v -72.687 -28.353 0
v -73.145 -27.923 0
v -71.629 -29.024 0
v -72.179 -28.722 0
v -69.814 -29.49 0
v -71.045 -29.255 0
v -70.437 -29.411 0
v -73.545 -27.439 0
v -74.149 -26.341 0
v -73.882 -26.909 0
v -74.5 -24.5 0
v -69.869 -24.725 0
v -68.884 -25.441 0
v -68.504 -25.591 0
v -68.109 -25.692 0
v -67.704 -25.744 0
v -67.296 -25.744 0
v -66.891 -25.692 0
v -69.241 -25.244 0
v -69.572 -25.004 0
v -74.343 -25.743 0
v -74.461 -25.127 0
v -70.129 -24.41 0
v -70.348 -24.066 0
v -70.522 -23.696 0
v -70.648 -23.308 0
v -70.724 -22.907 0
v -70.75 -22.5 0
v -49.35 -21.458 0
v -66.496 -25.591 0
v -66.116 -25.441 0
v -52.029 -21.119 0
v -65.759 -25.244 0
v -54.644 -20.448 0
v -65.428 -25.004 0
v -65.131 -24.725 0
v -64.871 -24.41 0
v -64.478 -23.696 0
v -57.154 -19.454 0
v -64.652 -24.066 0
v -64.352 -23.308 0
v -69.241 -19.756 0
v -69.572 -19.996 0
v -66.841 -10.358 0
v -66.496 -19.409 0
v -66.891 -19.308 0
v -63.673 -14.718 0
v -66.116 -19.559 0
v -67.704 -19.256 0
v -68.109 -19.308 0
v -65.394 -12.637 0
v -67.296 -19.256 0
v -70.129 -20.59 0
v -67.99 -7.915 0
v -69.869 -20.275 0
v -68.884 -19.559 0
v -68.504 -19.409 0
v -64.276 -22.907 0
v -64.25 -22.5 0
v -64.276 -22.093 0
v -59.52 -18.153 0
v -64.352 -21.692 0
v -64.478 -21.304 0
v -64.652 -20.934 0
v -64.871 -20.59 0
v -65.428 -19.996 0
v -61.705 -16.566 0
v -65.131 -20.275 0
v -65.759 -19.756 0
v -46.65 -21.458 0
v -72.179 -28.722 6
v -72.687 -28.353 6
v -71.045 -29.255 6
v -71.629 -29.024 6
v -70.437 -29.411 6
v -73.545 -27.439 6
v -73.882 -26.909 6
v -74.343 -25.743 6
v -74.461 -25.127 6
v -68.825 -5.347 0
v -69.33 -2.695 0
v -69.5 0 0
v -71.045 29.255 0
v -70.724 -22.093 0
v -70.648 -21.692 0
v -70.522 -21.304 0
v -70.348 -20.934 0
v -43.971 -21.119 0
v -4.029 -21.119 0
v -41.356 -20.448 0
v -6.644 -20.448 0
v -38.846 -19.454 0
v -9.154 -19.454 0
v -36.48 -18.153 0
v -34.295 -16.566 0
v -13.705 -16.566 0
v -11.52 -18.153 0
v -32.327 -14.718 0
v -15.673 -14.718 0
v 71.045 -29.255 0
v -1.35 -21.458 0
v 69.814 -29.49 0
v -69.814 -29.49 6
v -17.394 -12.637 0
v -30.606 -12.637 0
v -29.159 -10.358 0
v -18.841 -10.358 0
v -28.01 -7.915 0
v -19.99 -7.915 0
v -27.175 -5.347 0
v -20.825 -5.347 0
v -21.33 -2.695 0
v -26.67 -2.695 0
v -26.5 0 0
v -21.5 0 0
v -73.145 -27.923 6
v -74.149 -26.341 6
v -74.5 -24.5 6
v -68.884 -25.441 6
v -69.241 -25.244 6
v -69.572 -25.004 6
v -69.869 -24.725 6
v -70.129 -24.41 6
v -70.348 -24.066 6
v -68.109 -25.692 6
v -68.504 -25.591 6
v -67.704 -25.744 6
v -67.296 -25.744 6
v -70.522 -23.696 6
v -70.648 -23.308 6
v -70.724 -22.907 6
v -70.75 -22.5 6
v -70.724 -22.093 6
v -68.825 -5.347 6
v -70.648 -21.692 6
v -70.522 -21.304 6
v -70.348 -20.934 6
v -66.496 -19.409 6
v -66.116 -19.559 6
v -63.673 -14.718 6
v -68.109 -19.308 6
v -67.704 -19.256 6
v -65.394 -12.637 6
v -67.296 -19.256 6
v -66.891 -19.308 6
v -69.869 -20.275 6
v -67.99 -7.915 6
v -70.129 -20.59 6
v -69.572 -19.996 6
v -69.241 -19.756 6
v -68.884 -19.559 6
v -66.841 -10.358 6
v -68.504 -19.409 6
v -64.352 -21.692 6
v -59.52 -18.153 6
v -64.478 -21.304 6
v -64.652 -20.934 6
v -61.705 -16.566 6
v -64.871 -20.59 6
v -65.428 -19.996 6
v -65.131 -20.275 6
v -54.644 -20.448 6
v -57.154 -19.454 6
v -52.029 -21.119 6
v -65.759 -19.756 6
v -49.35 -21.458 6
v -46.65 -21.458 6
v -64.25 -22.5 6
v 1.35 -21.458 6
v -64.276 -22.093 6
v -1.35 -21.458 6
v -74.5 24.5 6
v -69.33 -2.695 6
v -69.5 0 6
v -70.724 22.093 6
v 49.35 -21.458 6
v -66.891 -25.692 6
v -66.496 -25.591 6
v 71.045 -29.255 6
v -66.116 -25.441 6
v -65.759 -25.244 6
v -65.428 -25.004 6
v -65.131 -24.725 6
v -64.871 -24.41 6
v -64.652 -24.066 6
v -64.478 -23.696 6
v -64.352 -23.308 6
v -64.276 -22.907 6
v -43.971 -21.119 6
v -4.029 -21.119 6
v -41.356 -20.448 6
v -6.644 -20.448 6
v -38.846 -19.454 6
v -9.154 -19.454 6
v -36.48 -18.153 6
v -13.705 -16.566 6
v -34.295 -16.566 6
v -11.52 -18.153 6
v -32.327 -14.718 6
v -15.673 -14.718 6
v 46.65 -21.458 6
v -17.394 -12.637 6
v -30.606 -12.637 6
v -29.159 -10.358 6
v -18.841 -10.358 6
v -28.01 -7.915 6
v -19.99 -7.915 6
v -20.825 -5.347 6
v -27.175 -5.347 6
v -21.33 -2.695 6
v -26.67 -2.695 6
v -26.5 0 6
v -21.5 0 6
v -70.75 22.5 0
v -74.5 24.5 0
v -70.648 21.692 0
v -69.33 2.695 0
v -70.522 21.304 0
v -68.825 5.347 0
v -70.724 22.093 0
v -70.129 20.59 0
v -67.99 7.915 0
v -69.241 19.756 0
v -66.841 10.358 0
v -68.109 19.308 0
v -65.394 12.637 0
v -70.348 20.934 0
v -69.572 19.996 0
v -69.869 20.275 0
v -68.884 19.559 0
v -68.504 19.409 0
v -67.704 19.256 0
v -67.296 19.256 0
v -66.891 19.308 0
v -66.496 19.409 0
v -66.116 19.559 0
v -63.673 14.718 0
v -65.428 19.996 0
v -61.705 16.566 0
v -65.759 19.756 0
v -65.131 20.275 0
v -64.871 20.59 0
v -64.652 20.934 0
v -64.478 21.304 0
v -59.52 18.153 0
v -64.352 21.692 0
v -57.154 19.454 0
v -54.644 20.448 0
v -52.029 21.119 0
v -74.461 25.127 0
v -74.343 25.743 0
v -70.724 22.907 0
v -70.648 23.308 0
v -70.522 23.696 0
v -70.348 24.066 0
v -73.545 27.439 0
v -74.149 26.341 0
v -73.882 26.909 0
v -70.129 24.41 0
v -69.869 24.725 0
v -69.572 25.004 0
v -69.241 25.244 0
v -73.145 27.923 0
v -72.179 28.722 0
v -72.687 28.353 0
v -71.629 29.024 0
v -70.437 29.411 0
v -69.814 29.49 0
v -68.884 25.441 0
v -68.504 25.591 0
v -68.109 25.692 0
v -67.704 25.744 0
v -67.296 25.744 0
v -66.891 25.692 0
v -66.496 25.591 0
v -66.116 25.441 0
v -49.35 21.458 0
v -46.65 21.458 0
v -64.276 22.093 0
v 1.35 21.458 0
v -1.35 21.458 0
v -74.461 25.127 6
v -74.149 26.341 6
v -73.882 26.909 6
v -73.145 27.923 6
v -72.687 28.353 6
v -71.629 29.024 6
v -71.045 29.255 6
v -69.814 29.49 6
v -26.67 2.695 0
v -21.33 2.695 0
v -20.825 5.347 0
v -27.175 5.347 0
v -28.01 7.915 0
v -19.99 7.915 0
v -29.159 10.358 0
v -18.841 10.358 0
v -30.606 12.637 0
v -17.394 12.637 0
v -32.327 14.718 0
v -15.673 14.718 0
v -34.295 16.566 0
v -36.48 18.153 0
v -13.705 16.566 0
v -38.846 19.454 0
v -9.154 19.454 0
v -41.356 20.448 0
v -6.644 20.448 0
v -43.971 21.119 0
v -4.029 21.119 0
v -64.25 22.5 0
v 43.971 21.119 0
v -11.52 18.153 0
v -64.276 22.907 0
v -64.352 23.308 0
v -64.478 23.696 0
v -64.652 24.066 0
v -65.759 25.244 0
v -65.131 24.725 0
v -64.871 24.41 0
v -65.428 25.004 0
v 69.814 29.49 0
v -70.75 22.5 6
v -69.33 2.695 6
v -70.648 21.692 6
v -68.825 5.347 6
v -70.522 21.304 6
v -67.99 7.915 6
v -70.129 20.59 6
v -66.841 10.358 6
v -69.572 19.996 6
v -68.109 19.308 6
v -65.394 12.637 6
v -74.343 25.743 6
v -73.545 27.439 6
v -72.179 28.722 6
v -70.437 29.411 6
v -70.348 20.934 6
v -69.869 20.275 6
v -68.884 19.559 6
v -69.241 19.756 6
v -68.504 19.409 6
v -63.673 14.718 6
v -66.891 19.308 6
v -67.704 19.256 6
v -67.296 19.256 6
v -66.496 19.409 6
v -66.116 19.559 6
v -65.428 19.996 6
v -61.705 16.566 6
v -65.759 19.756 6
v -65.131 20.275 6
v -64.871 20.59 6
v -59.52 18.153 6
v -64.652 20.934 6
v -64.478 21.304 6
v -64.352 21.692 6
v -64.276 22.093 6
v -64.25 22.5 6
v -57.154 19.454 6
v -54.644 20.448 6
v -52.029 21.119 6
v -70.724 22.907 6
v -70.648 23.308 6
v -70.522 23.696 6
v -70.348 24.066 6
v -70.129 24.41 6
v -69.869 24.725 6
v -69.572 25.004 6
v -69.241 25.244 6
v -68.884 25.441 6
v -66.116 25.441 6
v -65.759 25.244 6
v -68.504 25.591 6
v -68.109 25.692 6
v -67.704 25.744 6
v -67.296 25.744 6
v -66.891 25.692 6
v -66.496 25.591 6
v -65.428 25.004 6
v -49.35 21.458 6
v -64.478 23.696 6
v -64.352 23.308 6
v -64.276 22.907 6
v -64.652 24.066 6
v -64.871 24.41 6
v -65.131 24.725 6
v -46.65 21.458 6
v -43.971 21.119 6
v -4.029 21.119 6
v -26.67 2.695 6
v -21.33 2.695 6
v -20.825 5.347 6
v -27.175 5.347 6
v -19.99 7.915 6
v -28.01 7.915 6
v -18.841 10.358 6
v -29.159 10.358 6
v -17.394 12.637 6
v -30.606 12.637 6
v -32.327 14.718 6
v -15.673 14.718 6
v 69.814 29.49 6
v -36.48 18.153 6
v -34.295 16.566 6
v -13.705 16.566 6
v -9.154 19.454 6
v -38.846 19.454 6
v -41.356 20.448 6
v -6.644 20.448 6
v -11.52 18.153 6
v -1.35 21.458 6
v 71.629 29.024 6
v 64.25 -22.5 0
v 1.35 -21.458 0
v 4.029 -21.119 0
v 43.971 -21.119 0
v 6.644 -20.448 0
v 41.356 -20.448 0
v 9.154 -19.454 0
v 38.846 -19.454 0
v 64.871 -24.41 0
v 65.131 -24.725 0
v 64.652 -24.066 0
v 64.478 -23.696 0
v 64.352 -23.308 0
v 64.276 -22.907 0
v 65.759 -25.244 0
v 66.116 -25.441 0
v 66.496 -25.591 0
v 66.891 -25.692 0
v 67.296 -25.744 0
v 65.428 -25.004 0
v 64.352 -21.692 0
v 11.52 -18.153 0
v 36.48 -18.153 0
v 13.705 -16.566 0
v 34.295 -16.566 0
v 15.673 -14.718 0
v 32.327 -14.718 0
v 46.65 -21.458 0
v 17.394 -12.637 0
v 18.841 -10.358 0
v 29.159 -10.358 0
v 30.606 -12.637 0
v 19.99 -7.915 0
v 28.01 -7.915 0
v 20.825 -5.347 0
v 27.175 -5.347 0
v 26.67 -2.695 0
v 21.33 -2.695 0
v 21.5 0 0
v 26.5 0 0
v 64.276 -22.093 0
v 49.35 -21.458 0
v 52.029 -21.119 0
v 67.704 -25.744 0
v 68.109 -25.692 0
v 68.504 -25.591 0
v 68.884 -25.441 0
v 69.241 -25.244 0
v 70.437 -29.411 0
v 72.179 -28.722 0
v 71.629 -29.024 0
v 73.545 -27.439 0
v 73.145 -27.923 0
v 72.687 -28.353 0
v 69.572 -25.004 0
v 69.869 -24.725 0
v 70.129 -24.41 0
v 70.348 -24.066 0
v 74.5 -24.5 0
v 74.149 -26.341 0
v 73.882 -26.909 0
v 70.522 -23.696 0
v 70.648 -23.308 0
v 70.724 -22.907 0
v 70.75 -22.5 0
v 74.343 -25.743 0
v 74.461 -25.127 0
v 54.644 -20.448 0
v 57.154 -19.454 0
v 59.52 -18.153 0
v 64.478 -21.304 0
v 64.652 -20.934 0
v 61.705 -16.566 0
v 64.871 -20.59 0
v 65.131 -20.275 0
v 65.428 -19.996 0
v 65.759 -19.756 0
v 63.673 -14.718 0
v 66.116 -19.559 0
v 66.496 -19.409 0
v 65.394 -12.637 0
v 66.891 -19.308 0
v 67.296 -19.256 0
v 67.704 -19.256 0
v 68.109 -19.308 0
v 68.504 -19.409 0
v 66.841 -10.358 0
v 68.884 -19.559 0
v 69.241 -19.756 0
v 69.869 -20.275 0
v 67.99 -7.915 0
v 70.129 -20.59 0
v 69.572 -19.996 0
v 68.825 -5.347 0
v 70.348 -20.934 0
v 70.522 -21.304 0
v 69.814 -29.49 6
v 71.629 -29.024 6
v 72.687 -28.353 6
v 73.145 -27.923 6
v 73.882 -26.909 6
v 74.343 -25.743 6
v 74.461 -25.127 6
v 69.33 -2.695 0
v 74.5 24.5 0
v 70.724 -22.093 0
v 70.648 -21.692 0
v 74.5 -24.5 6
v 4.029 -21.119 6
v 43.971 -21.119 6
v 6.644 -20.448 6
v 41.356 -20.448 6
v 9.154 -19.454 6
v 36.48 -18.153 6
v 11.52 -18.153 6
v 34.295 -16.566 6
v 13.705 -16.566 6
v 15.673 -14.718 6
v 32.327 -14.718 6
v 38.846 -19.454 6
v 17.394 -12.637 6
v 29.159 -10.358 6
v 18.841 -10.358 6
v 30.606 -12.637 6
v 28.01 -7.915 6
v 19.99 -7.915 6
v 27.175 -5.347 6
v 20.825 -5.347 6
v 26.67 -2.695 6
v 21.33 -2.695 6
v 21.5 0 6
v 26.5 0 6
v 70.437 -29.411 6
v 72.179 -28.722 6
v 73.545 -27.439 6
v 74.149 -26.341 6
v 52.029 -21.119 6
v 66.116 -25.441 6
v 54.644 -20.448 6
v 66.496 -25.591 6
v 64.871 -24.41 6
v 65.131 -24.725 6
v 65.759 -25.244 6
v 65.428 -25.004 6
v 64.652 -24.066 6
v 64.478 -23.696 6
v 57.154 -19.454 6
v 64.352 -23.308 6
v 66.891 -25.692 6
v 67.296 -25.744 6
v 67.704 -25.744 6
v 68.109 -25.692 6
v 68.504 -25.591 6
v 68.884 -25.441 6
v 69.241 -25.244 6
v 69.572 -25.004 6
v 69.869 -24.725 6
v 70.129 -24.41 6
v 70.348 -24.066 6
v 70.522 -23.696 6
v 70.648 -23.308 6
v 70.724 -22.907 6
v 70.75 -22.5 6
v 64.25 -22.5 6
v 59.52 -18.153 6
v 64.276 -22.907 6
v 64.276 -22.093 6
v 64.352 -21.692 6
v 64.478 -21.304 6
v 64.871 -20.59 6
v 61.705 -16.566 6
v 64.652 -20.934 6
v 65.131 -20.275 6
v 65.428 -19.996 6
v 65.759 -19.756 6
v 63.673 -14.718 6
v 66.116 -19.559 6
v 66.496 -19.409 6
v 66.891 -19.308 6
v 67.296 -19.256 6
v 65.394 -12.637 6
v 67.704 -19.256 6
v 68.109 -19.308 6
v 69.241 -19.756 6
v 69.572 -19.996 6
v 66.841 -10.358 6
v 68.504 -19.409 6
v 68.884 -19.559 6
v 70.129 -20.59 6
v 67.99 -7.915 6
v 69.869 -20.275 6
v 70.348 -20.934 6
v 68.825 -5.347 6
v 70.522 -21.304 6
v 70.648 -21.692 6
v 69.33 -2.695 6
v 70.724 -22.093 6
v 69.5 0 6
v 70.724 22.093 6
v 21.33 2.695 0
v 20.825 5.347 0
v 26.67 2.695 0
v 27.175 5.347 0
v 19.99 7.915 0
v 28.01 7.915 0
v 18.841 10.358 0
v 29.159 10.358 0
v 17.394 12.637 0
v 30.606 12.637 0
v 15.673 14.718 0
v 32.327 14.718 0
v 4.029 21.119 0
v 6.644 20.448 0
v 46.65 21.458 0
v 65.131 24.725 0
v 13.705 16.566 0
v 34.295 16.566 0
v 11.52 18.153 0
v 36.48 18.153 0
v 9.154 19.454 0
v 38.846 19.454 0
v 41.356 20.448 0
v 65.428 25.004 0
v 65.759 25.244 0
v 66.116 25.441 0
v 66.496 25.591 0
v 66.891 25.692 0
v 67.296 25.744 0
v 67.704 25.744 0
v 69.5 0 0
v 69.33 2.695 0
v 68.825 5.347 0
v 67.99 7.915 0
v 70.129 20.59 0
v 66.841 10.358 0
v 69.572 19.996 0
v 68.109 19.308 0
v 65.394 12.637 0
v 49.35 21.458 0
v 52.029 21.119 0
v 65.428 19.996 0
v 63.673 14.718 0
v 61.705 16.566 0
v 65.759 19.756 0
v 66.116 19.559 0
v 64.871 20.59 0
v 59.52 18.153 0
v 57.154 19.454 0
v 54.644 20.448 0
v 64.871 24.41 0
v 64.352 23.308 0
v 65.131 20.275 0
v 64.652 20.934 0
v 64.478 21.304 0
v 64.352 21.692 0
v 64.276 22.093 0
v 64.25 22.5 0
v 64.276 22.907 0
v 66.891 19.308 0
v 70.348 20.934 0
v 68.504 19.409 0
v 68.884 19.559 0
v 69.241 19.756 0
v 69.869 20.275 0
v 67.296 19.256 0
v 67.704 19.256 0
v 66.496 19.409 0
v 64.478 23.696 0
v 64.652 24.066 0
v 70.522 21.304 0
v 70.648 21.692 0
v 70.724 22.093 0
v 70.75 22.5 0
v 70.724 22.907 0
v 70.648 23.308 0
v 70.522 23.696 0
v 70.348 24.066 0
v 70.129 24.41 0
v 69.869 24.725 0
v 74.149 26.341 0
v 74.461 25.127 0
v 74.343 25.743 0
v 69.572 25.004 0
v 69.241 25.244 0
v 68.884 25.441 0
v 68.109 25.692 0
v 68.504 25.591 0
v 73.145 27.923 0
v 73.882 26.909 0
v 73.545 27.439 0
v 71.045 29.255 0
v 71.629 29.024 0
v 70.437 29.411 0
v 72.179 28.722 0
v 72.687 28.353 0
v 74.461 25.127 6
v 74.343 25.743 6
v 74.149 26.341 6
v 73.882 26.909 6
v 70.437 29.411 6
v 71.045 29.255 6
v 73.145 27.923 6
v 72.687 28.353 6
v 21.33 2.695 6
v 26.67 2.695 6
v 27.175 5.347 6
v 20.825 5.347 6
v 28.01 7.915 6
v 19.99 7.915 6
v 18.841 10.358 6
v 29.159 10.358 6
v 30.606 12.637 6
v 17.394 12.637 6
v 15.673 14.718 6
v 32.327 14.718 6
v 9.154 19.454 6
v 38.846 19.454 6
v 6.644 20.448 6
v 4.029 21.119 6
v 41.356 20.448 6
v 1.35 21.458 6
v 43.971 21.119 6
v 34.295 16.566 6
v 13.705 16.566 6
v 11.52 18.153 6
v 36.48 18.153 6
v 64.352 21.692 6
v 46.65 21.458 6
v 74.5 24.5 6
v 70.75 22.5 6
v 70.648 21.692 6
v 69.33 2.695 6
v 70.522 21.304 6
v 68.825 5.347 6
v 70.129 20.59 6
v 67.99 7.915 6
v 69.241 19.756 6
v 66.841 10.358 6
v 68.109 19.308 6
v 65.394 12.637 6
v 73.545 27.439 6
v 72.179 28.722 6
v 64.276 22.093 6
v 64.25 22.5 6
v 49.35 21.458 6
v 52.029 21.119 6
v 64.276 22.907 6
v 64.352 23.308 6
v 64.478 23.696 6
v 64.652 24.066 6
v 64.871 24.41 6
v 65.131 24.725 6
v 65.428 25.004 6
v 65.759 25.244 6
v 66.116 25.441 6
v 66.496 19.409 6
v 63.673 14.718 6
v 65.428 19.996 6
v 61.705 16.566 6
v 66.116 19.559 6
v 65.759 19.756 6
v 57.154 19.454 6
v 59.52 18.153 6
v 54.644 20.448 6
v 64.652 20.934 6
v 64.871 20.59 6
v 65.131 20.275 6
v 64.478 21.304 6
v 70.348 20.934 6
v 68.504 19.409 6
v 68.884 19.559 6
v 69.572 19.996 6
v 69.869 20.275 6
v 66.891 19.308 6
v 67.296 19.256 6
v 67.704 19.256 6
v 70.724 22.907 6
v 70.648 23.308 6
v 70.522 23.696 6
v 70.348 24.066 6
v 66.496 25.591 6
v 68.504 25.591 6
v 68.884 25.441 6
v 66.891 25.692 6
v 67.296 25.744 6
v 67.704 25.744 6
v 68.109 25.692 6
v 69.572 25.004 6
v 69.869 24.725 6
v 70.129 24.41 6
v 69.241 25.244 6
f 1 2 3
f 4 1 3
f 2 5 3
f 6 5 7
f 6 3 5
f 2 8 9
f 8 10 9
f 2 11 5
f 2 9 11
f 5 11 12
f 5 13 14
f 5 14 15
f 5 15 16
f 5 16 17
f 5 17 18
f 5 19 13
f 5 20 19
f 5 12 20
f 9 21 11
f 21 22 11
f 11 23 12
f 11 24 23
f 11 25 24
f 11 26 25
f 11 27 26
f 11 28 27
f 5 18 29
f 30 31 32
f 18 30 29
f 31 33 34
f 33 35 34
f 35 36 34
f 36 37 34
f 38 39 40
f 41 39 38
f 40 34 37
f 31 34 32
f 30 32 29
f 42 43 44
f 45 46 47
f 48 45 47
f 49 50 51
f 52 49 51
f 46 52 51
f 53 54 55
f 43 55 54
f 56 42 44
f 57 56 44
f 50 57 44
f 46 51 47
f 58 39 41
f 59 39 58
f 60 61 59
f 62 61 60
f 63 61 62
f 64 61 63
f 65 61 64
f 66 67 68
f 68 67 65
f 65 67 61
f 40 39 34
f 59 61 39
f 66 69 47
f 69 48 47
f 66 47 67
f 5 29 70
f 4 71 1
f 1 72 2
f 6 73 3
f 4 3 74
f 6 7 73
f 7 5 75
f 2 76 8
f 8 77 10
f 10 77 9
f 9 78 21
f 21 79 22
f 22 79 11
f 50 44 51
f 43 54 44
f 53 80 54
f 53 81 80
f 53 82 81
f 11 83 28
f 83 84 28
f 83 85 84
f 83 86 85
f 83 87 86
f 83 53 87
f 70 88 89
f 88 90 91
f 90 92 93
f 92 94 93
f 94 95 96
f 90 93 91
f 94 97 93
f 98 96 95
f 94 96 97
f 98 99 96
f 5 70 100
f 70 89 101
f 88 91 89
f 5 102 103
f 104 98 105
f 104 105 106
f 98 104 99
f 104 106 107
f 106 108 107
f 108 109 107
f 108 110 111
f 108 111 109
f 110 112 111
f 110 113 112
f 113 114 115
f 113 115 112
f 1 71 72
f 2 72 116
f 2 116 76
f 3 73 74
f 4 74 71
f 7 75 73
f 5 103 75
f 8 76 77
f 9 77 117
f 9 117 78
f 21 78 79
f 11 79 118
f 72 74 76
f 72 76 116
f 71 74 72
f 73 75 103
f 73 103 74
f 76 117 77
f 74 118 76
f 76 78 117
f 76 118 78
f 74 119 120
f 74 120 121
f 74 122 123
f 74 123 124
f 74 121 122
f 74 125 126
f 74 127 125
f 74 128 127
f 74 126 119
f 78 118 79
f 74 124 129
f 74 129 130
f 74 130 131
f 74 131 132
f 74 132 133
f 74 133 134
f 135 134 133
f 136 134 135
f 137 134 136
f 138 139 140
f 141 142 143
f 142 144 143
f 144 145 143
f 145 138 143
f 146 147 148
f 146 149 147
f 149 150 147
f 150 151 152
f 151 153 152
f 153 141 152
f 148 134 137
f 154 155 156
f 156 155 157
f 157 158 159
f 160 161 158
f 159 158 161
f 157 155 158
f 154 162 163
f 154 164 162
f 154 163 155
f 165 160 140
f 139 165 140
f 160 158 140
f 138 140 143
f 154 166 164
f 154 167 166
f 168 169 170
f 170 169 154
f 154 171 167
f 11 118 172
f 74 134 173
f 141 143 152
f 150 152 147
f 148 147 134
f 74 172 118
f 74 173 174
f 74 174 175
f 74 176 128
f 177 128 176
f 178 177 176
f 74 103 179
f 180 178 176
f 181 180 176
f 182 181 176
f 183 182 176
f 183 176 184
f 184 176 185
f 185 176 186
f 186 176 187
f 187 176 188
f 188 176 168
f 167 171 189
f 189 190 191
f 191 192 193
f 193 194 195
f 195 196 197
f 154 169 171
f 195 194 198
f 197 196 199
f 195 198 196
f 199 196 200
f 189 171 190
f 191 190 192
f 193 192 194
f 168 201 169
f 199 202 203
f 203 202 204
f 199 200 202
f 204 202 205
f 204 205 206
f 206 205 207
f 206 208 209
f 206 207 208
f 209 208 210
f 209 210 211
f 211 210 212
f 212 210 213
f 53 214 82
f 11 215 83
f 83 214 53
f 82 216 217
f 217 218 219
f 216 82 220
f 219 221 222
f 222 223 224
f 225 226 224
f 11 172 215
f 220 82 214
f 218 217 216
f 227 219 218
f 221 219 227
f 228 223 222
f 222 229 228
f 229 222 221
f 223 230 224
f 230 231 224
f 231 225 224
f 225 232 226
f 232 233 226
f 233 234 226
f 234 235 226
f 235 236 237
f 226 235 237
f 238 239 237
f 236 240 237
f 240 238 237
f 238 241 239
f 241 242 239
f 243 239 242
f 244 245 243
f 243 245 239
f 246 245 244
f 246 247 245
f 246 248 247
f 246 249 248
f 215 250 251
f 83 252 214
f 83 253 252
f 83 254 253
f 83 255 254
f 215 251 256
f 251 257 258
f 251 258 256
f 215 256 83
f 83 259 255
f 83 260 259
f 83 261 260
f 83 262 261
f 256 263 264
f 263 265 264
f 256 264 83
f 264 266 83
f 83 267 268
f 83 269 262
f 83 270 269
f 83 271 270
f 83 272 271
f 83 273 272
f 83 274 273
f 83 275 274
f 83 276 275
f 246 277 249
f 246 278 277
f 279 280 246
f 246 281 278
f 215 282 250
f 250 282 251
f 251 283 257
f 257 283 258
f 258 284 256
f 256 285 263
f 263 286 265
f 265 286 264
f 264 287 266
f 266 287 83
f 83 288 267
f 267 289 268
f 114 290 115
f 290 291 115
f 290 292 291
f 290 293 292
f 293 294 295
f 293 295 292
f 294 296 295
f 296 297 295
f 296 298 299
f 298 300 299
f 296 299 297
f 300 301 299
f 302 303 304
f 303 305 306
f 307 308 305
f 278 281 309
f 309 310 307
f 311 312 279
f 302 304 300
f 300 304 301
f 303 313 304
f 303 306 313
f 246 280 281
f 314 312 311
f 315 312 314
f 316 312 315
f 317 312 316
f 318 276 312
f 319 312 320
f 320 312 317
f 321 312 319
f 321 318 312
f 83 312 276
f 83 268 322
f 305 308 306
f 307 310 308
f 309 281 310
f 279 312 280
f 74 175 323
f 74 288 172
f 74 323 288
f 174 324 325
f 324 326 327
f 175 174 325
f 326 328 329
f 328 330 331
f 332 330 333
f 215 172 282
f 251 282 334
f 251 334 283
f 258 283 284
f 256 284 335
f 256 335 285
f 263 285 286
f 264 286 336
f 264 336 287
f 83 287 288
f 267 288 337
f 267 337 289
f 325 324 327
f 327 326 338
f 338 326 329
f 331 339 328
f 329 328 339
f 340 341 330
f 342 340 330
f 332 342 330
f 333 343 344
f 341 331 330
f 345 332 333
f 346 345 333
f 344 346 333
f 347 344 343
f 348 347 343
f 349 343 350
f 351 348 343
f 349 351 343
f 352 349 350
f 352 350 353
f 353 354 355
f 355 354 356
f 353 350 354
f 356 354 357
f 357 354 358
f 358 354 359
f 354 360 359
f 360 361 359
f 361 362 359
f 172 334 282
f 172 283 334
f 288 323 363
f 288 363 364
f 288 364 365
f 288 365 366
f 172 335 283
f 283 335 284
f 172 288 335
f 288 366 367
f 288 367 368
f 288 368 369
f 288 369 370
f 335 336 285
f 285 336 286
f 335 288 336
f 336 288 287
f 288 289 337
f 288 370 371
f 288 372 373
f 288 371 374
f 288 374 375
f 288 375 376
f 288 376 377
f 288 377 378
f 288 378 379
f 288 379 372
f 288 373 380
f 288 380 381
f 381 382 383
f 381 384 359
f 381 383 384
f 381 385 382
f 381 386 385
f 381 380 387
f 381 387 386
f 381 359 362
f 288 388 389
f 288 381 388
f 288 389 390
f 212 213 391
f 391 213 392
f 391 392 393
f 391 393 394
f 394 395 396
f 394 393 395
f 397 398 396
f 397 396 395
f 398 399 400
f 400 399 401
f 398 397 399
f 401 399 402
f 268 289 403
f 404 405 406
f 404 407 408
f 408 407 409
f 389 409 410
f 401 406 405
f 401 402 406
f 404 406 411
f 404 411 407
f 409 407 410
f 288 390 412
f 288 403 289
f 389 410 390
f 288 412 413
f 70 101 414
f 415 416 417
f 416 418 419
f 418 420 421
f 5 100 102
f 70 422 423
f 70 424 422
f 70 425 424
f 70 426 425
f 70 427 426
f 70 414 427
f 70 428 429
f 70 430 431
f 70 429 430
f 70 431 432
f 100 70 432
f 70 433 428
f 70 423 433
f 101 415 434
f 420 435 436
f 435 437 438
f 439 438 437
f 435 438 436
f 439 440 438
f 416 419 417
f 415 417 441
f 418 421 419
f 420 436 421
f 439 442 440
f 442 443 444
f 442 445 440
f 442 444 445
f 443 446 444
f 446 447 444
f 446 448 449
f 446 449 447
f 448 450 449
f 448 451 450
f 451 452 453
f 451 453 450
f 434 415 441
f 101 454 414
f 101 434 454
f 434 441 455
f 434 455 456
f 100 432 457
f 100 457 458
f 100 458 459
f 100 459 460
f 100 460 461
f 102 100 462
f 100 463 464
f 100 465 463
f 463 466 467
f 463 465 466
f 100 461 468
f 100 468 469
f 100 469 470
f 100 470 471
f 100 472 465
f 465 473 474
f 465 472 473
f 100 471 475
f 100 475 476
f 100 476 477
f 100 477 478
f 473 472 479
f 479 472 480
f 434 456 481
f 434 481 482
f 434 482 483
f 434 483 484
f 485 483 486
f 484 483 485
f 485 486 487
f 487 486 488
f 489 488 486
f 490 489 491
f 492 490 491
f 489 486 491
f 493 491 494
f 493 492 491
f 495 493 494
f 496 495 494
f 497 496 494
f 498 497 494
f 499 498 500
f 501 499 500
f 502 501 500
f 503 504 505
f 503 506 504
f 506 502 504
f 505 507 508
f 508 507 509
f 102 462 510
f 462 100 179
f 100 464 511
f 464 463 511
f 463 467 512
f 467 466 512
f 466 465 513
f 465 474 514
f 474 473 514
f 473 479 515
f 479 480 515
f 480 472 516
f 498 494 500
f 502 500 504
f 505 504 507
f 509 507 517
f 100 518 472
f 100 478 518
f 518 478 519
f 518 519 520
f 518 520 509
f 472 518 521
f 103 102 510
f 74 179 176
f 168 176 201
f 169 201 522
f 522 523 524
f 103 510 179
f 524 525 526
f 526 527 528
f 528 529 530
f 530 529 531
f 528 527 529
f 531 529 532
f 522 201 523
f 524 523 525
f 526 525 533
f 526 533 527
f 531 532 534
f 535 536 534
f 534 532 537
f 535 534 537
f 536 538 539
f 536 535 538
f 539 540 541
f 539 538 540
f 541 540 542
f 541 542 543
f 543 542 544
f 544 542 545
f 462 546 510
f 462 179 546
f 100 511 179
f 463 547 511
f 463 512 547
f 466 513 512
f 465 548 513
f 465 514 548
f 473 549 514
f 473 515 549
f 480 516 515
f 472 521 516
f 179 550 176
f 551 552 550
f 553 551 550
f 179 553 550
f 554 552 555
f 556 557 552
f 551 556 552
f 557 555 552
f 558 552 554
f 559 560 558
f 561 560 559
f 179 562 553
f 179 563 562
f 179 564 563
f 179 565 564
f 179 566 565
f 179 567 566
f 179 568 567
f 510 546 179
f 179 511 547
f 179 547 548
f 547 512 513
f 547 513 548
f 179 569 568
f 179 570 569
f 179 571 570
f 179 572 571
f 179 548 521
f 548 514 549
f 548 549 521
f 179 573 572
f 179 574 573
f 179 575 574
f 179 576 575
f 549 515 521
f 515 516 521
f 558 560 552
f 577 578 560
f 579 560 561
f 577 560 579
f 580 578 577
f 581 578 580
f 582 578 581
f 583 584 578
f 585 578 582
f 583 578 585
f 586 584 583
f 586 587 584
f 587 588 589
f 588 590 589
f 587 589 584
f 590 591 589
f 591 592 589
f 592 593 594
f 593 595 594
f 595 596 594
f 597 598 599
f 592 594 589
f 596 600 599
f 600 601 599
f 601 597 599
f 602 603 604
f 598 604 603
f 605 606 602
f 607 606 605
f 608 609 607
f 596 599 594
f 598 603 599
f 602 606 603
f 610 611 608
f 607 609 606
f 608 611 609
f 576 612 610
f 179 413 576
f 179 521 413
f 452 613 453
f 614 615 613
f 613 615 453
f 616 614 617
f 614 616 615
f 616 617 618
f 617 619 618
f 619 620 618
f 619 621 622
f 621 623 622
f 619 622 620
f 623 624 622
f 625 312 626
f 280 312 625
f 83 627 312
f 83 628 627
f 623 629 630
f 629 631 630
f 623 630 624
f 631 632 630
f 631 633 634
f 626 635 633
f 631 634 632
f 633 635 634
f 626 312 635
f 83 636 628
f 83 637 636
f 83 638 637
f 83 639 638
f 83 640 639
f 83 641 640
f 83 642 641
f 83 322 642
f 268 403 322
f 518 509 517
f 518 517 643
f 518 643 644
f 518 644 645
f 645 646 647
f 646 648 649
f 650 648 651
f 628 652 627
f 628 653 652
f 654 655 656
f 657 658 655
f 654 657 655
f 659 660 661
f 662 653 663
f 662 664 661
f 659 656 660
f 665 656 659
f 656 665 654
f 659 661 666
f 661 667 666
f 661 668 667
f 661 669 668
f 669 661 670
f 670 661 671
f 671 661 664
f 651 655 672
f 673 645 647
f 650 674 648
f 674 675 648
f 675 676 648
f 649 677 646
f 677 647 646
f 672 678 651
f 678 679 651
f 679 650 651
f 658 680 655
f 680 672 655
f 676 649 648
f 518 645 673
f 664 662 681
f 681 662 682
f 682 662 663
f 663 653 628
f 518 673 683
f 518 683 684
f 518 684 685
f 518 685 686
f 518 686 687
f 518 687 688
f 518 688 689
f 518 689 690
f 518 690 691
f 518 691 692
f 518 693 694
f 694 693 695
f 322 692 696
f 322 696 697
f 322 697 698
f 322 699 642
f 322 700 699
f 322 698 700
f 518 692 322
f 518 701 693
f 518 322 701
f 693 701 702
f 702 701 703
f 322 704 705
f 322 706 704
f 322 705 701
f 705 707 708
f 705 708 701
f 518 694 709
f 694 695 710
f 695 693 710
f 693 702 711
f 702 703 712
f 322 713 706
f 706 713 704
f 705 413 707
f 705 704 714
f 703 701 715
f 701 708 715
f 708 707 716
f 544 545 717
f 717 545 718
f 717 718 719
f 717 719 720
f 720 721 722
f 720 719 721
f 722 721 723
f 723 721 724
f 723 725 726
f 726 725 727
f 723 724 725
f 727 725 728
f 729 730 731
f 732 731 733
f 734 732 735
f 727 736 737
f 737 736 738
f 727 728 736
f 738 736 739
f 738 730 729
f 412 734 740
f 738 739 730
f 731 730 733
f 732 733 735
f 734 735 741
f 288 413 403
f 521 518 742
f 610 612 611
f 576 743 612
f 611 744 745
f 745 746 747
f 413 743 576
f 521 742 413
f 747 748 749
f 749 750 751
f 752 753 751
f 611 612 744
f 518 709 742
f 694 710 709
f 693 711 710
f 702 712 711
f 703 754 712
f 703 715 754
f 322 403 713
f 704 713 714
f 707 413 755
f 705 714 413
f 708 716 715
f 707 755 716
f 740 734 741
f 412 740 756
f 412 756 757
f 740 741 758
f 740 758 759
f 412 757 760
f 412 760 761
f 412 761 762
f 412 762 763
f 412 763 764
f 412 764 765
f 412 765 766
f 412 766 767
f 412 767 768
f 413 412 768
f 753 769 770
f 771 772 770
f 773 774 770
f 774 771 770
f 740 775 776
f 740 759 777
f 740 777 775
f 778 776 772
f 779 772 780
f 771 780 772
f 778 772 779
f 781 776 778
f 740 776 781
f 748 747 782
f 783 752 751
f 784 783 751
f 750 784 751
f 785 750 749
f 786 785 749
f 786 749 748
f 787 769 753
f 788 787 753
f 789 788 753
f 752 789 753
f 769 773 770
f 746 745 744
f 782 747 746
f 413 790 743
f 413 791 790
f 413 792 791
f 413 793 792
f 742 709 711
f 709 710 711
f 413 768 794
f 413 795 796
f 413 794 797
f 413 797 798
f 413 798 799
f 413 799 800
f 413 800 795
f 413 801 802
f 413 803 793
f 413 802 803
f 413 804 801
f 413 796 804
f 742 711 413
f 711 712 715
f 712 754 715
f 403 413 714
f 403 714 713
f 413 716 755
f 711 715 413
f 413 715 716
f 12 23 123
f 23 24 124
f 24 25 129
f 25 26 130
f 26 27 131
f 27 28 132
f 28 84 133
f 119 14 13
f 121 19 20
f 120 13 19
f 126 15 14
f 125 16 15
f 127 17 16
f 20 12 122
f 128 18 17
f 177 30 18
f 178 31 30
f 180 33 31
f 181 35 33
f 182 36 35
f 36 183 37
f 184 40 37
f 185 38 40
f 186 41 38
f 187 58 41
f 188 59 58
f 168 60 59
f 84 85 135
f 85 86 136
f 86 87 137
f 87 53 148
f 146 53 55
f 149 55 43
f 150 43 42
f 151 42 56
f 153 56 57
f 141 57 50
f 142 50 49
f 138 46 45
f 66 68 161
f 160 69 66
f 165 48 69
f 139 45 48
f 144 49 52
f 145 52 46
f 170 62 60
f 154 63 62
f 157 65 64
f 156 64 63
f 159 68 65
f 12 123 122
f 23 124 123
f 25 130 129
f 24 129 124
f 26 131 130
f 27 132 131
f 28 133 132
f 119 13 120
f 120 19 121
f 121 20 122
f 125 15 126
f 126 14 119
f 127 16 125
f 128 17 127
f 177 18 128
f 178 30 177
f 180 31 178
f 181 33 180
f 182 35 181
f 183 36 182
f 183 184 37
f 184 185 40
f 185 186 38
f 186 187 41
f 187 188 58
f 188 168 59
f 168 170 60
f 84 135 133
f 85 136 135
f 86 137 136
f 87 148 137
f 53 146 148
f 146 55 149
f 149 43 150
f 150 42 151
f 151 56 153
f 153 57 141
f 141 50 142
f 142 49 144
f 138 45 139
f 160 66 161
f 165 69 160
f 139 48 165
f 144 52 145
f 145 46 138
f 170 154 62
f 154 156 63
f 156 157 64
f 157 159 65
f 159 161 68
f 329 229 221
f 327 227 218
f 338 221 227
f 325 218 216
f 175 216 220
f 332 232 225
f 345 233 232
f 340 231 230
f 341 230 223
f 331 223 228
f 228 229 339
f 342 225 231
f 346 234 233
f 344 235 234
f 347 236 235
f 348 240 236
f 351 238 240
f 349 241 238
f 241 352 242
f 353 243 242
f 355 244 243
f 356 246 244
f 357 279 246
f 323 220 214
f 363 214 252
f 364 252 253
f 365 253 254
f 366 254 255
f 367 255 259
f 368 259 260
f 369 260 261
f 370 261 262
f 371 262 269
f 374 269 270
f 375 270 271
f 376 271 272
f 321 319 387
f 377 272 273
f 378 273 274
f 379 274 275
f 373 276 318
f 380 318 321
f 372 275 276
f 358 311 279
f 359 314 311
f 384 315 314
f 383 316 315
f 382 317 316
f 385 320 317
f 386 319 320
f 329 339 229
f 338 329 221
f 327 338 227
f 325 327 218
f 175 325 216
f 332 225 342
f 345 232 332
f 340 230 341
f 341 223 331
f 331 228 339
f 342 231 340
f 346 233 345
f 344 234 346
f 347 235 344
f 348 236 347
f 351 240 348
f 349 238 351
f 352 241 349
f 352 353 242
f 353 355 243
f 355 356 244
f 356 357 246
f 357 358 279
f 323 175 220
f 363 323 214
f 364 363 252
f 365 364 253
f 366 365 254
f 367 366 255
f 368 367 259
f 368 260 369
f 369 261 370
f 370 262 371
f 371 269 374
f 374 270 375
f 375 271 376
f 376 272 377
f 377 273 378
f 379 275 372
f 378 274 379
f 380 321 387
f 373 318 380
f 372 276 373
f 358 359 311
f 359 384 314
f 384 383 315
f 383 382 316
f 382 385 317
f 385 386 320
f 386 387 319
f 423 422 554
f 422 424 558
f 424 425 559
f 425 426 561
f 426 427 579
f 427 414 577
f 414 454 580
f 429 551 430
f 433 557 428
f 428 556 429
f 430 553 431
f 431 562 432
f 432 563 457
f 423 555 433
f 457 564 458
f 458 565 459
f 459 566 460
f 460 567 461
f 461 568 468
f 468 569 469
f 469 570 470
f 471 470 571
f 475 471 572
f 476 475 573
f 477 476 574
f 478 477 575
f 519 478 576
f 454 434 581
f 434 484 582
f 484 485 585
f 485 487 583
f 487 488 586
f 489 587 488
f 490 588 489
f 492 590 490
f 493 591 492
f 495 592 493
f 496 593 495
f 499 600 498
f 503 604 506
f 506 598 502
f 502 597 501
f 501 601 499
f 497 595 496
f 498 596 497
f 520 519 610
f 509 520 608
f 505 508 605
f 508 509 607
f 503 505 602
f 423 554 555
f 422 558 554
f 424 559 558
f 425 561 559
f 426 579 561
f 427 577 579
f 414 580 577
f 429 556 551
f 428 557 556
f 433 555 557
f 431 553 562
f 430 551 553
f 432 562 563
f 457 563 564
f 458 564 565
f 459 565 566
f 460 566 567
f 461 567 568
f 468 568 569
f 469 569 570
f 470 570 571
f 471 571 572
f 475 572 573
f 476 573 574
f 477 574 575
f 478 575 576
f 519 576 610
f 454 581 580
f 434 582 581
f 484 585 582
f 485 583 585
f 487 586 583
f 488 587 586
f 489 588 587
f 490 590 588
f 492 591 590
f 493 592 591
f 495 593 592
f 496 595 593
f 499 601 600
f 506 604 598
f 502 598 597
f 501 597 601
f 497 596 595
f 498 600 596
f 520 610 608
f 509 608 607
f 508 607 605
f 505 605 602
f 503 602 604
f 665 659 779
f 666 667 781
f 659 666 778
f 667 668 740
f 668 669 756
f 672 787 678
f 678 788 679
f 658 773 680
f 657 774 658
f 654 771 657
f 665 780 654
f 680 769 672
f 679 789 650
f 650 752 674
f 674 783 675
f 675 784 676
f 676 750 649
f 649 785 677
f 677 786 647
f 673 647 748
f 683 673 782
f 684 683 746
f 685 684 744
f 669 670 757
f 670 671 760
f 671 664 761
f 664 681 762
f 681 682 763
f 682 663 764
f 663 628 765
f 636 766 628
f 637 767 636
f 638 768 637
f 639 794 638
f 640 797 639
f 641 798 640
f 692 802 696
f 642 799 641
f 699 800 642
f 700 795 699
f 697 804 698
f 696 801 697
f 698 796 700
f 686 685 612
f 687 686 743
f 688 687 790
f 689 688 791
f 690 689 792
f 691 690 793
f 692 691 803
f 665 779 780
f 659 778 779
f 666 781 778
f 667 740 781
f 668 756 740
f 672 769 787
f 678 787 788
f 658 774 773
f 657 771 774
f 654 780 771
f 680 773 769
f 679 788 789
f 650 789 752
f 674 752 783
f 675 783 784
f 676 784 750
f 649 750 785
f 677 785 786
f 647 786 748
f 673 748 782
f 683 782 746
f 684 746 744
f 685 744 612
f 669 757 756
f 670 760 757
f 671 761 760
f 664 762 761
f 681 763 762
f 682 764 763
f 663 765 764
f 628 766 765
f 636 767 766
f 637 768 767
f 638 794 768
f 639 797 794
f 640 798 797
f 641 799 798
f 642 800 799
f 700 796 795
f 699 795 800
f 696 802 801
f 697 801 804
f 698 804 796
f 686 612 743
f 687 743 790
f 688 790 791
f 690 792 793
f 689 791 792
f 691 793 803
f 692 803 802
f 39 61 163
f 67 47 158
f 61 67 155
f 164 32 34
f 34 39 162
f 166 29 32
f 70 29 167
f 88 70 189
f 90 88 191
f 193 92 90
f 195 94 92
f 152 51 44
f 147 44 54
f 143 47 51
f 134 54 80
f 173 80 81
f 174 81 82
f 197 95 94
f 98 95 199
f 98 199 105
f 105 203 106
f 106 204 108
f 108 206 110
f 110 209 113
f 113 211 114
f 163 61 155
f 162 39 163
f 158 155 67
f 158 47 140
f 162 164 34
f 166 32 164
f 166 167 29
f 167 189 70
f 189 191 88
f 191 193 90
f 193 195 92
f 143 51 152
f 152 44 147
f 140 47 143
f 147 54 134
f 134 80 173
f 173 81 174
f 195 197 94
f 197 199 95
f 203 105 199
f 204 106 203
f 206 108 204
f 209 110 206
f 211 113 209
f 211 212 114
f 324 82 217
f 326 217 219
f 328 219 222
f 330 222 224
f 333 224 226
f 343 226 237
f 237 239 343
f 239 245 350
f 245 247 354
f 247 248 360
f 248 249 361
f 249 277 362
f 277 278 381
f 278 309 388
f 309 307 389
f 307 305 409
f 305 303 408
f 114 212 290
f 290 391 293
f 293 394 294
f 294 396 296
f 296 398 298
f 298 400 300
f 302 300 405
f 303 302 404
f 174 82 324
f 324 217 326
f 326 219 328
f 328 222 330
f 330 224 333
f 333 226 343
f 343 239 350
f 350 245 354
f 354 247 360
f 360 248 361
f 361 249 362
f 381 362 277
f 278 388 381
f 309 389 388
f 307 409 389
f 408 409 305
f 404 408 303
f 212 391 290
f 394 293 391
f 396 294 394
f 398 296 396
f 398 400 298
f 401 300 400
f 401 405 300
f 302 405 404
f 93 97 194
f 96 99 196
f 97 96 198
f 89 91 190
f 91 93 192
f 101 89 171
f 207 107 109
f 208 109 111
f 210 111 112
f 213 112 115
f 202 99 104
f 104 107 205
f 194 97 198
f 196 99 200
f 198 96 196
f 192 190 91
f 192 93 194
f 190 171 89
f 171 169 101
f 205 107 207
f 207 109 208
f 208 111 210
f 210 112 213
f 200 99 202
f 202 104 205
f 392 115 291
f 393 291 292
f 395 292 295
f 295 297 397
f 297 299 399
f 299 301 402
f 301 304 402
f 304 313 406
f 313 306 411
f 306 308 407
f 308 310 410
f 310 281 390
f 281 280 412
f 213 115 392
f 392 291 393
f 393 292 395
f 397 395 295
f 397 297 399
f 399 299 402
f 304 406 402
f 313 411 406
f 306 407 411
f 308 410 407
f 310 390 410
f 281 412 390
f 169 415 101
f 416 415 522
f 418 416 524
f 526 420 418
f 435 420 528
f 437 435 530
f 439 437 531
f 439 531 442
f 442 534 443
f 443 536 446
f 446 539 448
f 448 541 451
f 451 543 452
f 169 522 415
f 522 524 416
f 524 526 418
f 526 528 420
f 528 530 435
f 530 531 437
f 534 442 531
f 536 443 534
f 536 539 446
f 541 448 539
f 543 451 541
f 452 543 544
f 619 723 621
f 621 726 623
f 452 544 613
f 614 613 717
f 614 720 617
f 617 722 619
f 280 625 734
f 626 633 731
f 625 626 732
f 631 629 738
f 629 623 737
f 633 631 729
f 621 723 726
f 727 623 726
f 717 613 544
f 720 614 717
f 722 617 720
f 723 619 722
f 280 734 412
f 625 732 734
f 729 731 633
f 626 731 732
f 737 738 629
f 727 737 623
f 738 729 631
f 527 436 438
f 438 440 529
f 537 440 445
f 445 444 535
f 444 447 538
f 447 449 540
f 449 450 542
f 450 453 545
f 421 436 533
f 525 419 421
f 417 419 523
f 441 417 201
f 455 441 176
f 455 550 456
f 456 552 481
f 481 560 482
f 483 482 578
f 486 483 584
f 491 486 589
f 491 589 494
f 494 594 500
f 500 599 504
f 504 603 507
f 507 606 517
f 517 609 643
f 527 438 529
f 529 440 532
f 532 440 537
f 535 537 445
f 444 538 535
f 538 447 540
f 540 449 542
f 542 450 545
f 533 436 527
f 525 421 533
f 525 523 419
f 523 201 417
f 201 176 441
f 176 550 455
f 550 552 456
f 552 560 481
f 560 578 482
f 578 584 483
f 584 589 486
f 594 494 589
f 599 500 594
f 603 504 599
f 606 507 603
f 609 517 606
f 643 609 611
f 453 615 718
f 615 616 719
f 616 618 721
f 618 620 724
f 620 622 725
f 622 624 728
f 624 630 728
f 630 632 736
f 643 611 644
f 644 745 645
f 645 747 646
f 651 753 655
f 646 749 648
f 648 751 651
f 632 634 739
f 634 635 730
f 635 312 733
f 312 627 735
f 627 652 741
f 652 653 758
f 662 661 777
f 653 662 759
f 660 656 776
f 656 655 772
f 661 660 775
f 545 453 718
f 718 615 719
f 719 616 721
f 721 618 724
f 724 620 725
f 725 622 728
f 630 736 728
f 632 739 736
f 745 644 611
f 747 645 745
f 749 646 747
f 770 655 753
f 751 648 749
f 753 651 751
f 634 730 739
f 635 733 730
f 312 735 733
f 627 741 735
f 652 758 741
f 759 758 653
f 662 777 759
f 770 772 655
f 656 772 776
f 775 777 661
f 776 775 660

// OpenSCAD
$fn = 50;

difference() {
	union() {
		hull() {
			translate(v = [-69.5, 24.5, 0]) {
				cylinder(h = 6, r = 5);
			}
			translate(v = [69.5, 24.5, 0]) {
				cylinder(h = 6, r = 5);
			}
			translate(v = [-69.5, -24.5, 0]) {
				cylinder(h = 6, r = 5);
			}
			translate(v = [69.5, -24.5, 0]) {
				cylinder(h = 6, r = 5);
			}
		}
	}
	union() {
		translate(v = [-67.5, -22.5, -100.0]) {
			cylinder(h = 200, r = 3.25);
		}
		translate(v = [-67.5, 22.5, -100.0]) {
			cylinder(h = 200, r = 3.25);
		}
		translate(v = [67.5, -22.5, -100.0]) {
			cylinder(h = 200, r = 3.25);
		}
		translate(v = [67.5, 22.5, -100.0]) {
			cylinder(h = 200, r = 3.25);
		}
		translate(v = [-67.5, -22.5, -100.0]) {
			cylinder(h = 200, r = 1.8);
		}
		translate(v = [-67.5, 22.5, -100.0]) {
			cylinder(h = 200, r = 1.8);
		}
		translate(v = [67.5, -22.5, -100.0]) {
			cylinder(h = 200, r = 1.8);
		}
		translate(v = [67.5, 22.5, -100.0]) {
			cylinder(h = 200, r = 1.8);
		}
		translate(v = [-48.0, 0, 0.0]) {
			cylinder(h = 6, r = 21.5);
		}
		cylinder(h = 6, r = 21.5);
		translate(v = [48.0, 0, 0.0]) {
			cylinder(h = 6, r = 21.5);
		}
	}
}
